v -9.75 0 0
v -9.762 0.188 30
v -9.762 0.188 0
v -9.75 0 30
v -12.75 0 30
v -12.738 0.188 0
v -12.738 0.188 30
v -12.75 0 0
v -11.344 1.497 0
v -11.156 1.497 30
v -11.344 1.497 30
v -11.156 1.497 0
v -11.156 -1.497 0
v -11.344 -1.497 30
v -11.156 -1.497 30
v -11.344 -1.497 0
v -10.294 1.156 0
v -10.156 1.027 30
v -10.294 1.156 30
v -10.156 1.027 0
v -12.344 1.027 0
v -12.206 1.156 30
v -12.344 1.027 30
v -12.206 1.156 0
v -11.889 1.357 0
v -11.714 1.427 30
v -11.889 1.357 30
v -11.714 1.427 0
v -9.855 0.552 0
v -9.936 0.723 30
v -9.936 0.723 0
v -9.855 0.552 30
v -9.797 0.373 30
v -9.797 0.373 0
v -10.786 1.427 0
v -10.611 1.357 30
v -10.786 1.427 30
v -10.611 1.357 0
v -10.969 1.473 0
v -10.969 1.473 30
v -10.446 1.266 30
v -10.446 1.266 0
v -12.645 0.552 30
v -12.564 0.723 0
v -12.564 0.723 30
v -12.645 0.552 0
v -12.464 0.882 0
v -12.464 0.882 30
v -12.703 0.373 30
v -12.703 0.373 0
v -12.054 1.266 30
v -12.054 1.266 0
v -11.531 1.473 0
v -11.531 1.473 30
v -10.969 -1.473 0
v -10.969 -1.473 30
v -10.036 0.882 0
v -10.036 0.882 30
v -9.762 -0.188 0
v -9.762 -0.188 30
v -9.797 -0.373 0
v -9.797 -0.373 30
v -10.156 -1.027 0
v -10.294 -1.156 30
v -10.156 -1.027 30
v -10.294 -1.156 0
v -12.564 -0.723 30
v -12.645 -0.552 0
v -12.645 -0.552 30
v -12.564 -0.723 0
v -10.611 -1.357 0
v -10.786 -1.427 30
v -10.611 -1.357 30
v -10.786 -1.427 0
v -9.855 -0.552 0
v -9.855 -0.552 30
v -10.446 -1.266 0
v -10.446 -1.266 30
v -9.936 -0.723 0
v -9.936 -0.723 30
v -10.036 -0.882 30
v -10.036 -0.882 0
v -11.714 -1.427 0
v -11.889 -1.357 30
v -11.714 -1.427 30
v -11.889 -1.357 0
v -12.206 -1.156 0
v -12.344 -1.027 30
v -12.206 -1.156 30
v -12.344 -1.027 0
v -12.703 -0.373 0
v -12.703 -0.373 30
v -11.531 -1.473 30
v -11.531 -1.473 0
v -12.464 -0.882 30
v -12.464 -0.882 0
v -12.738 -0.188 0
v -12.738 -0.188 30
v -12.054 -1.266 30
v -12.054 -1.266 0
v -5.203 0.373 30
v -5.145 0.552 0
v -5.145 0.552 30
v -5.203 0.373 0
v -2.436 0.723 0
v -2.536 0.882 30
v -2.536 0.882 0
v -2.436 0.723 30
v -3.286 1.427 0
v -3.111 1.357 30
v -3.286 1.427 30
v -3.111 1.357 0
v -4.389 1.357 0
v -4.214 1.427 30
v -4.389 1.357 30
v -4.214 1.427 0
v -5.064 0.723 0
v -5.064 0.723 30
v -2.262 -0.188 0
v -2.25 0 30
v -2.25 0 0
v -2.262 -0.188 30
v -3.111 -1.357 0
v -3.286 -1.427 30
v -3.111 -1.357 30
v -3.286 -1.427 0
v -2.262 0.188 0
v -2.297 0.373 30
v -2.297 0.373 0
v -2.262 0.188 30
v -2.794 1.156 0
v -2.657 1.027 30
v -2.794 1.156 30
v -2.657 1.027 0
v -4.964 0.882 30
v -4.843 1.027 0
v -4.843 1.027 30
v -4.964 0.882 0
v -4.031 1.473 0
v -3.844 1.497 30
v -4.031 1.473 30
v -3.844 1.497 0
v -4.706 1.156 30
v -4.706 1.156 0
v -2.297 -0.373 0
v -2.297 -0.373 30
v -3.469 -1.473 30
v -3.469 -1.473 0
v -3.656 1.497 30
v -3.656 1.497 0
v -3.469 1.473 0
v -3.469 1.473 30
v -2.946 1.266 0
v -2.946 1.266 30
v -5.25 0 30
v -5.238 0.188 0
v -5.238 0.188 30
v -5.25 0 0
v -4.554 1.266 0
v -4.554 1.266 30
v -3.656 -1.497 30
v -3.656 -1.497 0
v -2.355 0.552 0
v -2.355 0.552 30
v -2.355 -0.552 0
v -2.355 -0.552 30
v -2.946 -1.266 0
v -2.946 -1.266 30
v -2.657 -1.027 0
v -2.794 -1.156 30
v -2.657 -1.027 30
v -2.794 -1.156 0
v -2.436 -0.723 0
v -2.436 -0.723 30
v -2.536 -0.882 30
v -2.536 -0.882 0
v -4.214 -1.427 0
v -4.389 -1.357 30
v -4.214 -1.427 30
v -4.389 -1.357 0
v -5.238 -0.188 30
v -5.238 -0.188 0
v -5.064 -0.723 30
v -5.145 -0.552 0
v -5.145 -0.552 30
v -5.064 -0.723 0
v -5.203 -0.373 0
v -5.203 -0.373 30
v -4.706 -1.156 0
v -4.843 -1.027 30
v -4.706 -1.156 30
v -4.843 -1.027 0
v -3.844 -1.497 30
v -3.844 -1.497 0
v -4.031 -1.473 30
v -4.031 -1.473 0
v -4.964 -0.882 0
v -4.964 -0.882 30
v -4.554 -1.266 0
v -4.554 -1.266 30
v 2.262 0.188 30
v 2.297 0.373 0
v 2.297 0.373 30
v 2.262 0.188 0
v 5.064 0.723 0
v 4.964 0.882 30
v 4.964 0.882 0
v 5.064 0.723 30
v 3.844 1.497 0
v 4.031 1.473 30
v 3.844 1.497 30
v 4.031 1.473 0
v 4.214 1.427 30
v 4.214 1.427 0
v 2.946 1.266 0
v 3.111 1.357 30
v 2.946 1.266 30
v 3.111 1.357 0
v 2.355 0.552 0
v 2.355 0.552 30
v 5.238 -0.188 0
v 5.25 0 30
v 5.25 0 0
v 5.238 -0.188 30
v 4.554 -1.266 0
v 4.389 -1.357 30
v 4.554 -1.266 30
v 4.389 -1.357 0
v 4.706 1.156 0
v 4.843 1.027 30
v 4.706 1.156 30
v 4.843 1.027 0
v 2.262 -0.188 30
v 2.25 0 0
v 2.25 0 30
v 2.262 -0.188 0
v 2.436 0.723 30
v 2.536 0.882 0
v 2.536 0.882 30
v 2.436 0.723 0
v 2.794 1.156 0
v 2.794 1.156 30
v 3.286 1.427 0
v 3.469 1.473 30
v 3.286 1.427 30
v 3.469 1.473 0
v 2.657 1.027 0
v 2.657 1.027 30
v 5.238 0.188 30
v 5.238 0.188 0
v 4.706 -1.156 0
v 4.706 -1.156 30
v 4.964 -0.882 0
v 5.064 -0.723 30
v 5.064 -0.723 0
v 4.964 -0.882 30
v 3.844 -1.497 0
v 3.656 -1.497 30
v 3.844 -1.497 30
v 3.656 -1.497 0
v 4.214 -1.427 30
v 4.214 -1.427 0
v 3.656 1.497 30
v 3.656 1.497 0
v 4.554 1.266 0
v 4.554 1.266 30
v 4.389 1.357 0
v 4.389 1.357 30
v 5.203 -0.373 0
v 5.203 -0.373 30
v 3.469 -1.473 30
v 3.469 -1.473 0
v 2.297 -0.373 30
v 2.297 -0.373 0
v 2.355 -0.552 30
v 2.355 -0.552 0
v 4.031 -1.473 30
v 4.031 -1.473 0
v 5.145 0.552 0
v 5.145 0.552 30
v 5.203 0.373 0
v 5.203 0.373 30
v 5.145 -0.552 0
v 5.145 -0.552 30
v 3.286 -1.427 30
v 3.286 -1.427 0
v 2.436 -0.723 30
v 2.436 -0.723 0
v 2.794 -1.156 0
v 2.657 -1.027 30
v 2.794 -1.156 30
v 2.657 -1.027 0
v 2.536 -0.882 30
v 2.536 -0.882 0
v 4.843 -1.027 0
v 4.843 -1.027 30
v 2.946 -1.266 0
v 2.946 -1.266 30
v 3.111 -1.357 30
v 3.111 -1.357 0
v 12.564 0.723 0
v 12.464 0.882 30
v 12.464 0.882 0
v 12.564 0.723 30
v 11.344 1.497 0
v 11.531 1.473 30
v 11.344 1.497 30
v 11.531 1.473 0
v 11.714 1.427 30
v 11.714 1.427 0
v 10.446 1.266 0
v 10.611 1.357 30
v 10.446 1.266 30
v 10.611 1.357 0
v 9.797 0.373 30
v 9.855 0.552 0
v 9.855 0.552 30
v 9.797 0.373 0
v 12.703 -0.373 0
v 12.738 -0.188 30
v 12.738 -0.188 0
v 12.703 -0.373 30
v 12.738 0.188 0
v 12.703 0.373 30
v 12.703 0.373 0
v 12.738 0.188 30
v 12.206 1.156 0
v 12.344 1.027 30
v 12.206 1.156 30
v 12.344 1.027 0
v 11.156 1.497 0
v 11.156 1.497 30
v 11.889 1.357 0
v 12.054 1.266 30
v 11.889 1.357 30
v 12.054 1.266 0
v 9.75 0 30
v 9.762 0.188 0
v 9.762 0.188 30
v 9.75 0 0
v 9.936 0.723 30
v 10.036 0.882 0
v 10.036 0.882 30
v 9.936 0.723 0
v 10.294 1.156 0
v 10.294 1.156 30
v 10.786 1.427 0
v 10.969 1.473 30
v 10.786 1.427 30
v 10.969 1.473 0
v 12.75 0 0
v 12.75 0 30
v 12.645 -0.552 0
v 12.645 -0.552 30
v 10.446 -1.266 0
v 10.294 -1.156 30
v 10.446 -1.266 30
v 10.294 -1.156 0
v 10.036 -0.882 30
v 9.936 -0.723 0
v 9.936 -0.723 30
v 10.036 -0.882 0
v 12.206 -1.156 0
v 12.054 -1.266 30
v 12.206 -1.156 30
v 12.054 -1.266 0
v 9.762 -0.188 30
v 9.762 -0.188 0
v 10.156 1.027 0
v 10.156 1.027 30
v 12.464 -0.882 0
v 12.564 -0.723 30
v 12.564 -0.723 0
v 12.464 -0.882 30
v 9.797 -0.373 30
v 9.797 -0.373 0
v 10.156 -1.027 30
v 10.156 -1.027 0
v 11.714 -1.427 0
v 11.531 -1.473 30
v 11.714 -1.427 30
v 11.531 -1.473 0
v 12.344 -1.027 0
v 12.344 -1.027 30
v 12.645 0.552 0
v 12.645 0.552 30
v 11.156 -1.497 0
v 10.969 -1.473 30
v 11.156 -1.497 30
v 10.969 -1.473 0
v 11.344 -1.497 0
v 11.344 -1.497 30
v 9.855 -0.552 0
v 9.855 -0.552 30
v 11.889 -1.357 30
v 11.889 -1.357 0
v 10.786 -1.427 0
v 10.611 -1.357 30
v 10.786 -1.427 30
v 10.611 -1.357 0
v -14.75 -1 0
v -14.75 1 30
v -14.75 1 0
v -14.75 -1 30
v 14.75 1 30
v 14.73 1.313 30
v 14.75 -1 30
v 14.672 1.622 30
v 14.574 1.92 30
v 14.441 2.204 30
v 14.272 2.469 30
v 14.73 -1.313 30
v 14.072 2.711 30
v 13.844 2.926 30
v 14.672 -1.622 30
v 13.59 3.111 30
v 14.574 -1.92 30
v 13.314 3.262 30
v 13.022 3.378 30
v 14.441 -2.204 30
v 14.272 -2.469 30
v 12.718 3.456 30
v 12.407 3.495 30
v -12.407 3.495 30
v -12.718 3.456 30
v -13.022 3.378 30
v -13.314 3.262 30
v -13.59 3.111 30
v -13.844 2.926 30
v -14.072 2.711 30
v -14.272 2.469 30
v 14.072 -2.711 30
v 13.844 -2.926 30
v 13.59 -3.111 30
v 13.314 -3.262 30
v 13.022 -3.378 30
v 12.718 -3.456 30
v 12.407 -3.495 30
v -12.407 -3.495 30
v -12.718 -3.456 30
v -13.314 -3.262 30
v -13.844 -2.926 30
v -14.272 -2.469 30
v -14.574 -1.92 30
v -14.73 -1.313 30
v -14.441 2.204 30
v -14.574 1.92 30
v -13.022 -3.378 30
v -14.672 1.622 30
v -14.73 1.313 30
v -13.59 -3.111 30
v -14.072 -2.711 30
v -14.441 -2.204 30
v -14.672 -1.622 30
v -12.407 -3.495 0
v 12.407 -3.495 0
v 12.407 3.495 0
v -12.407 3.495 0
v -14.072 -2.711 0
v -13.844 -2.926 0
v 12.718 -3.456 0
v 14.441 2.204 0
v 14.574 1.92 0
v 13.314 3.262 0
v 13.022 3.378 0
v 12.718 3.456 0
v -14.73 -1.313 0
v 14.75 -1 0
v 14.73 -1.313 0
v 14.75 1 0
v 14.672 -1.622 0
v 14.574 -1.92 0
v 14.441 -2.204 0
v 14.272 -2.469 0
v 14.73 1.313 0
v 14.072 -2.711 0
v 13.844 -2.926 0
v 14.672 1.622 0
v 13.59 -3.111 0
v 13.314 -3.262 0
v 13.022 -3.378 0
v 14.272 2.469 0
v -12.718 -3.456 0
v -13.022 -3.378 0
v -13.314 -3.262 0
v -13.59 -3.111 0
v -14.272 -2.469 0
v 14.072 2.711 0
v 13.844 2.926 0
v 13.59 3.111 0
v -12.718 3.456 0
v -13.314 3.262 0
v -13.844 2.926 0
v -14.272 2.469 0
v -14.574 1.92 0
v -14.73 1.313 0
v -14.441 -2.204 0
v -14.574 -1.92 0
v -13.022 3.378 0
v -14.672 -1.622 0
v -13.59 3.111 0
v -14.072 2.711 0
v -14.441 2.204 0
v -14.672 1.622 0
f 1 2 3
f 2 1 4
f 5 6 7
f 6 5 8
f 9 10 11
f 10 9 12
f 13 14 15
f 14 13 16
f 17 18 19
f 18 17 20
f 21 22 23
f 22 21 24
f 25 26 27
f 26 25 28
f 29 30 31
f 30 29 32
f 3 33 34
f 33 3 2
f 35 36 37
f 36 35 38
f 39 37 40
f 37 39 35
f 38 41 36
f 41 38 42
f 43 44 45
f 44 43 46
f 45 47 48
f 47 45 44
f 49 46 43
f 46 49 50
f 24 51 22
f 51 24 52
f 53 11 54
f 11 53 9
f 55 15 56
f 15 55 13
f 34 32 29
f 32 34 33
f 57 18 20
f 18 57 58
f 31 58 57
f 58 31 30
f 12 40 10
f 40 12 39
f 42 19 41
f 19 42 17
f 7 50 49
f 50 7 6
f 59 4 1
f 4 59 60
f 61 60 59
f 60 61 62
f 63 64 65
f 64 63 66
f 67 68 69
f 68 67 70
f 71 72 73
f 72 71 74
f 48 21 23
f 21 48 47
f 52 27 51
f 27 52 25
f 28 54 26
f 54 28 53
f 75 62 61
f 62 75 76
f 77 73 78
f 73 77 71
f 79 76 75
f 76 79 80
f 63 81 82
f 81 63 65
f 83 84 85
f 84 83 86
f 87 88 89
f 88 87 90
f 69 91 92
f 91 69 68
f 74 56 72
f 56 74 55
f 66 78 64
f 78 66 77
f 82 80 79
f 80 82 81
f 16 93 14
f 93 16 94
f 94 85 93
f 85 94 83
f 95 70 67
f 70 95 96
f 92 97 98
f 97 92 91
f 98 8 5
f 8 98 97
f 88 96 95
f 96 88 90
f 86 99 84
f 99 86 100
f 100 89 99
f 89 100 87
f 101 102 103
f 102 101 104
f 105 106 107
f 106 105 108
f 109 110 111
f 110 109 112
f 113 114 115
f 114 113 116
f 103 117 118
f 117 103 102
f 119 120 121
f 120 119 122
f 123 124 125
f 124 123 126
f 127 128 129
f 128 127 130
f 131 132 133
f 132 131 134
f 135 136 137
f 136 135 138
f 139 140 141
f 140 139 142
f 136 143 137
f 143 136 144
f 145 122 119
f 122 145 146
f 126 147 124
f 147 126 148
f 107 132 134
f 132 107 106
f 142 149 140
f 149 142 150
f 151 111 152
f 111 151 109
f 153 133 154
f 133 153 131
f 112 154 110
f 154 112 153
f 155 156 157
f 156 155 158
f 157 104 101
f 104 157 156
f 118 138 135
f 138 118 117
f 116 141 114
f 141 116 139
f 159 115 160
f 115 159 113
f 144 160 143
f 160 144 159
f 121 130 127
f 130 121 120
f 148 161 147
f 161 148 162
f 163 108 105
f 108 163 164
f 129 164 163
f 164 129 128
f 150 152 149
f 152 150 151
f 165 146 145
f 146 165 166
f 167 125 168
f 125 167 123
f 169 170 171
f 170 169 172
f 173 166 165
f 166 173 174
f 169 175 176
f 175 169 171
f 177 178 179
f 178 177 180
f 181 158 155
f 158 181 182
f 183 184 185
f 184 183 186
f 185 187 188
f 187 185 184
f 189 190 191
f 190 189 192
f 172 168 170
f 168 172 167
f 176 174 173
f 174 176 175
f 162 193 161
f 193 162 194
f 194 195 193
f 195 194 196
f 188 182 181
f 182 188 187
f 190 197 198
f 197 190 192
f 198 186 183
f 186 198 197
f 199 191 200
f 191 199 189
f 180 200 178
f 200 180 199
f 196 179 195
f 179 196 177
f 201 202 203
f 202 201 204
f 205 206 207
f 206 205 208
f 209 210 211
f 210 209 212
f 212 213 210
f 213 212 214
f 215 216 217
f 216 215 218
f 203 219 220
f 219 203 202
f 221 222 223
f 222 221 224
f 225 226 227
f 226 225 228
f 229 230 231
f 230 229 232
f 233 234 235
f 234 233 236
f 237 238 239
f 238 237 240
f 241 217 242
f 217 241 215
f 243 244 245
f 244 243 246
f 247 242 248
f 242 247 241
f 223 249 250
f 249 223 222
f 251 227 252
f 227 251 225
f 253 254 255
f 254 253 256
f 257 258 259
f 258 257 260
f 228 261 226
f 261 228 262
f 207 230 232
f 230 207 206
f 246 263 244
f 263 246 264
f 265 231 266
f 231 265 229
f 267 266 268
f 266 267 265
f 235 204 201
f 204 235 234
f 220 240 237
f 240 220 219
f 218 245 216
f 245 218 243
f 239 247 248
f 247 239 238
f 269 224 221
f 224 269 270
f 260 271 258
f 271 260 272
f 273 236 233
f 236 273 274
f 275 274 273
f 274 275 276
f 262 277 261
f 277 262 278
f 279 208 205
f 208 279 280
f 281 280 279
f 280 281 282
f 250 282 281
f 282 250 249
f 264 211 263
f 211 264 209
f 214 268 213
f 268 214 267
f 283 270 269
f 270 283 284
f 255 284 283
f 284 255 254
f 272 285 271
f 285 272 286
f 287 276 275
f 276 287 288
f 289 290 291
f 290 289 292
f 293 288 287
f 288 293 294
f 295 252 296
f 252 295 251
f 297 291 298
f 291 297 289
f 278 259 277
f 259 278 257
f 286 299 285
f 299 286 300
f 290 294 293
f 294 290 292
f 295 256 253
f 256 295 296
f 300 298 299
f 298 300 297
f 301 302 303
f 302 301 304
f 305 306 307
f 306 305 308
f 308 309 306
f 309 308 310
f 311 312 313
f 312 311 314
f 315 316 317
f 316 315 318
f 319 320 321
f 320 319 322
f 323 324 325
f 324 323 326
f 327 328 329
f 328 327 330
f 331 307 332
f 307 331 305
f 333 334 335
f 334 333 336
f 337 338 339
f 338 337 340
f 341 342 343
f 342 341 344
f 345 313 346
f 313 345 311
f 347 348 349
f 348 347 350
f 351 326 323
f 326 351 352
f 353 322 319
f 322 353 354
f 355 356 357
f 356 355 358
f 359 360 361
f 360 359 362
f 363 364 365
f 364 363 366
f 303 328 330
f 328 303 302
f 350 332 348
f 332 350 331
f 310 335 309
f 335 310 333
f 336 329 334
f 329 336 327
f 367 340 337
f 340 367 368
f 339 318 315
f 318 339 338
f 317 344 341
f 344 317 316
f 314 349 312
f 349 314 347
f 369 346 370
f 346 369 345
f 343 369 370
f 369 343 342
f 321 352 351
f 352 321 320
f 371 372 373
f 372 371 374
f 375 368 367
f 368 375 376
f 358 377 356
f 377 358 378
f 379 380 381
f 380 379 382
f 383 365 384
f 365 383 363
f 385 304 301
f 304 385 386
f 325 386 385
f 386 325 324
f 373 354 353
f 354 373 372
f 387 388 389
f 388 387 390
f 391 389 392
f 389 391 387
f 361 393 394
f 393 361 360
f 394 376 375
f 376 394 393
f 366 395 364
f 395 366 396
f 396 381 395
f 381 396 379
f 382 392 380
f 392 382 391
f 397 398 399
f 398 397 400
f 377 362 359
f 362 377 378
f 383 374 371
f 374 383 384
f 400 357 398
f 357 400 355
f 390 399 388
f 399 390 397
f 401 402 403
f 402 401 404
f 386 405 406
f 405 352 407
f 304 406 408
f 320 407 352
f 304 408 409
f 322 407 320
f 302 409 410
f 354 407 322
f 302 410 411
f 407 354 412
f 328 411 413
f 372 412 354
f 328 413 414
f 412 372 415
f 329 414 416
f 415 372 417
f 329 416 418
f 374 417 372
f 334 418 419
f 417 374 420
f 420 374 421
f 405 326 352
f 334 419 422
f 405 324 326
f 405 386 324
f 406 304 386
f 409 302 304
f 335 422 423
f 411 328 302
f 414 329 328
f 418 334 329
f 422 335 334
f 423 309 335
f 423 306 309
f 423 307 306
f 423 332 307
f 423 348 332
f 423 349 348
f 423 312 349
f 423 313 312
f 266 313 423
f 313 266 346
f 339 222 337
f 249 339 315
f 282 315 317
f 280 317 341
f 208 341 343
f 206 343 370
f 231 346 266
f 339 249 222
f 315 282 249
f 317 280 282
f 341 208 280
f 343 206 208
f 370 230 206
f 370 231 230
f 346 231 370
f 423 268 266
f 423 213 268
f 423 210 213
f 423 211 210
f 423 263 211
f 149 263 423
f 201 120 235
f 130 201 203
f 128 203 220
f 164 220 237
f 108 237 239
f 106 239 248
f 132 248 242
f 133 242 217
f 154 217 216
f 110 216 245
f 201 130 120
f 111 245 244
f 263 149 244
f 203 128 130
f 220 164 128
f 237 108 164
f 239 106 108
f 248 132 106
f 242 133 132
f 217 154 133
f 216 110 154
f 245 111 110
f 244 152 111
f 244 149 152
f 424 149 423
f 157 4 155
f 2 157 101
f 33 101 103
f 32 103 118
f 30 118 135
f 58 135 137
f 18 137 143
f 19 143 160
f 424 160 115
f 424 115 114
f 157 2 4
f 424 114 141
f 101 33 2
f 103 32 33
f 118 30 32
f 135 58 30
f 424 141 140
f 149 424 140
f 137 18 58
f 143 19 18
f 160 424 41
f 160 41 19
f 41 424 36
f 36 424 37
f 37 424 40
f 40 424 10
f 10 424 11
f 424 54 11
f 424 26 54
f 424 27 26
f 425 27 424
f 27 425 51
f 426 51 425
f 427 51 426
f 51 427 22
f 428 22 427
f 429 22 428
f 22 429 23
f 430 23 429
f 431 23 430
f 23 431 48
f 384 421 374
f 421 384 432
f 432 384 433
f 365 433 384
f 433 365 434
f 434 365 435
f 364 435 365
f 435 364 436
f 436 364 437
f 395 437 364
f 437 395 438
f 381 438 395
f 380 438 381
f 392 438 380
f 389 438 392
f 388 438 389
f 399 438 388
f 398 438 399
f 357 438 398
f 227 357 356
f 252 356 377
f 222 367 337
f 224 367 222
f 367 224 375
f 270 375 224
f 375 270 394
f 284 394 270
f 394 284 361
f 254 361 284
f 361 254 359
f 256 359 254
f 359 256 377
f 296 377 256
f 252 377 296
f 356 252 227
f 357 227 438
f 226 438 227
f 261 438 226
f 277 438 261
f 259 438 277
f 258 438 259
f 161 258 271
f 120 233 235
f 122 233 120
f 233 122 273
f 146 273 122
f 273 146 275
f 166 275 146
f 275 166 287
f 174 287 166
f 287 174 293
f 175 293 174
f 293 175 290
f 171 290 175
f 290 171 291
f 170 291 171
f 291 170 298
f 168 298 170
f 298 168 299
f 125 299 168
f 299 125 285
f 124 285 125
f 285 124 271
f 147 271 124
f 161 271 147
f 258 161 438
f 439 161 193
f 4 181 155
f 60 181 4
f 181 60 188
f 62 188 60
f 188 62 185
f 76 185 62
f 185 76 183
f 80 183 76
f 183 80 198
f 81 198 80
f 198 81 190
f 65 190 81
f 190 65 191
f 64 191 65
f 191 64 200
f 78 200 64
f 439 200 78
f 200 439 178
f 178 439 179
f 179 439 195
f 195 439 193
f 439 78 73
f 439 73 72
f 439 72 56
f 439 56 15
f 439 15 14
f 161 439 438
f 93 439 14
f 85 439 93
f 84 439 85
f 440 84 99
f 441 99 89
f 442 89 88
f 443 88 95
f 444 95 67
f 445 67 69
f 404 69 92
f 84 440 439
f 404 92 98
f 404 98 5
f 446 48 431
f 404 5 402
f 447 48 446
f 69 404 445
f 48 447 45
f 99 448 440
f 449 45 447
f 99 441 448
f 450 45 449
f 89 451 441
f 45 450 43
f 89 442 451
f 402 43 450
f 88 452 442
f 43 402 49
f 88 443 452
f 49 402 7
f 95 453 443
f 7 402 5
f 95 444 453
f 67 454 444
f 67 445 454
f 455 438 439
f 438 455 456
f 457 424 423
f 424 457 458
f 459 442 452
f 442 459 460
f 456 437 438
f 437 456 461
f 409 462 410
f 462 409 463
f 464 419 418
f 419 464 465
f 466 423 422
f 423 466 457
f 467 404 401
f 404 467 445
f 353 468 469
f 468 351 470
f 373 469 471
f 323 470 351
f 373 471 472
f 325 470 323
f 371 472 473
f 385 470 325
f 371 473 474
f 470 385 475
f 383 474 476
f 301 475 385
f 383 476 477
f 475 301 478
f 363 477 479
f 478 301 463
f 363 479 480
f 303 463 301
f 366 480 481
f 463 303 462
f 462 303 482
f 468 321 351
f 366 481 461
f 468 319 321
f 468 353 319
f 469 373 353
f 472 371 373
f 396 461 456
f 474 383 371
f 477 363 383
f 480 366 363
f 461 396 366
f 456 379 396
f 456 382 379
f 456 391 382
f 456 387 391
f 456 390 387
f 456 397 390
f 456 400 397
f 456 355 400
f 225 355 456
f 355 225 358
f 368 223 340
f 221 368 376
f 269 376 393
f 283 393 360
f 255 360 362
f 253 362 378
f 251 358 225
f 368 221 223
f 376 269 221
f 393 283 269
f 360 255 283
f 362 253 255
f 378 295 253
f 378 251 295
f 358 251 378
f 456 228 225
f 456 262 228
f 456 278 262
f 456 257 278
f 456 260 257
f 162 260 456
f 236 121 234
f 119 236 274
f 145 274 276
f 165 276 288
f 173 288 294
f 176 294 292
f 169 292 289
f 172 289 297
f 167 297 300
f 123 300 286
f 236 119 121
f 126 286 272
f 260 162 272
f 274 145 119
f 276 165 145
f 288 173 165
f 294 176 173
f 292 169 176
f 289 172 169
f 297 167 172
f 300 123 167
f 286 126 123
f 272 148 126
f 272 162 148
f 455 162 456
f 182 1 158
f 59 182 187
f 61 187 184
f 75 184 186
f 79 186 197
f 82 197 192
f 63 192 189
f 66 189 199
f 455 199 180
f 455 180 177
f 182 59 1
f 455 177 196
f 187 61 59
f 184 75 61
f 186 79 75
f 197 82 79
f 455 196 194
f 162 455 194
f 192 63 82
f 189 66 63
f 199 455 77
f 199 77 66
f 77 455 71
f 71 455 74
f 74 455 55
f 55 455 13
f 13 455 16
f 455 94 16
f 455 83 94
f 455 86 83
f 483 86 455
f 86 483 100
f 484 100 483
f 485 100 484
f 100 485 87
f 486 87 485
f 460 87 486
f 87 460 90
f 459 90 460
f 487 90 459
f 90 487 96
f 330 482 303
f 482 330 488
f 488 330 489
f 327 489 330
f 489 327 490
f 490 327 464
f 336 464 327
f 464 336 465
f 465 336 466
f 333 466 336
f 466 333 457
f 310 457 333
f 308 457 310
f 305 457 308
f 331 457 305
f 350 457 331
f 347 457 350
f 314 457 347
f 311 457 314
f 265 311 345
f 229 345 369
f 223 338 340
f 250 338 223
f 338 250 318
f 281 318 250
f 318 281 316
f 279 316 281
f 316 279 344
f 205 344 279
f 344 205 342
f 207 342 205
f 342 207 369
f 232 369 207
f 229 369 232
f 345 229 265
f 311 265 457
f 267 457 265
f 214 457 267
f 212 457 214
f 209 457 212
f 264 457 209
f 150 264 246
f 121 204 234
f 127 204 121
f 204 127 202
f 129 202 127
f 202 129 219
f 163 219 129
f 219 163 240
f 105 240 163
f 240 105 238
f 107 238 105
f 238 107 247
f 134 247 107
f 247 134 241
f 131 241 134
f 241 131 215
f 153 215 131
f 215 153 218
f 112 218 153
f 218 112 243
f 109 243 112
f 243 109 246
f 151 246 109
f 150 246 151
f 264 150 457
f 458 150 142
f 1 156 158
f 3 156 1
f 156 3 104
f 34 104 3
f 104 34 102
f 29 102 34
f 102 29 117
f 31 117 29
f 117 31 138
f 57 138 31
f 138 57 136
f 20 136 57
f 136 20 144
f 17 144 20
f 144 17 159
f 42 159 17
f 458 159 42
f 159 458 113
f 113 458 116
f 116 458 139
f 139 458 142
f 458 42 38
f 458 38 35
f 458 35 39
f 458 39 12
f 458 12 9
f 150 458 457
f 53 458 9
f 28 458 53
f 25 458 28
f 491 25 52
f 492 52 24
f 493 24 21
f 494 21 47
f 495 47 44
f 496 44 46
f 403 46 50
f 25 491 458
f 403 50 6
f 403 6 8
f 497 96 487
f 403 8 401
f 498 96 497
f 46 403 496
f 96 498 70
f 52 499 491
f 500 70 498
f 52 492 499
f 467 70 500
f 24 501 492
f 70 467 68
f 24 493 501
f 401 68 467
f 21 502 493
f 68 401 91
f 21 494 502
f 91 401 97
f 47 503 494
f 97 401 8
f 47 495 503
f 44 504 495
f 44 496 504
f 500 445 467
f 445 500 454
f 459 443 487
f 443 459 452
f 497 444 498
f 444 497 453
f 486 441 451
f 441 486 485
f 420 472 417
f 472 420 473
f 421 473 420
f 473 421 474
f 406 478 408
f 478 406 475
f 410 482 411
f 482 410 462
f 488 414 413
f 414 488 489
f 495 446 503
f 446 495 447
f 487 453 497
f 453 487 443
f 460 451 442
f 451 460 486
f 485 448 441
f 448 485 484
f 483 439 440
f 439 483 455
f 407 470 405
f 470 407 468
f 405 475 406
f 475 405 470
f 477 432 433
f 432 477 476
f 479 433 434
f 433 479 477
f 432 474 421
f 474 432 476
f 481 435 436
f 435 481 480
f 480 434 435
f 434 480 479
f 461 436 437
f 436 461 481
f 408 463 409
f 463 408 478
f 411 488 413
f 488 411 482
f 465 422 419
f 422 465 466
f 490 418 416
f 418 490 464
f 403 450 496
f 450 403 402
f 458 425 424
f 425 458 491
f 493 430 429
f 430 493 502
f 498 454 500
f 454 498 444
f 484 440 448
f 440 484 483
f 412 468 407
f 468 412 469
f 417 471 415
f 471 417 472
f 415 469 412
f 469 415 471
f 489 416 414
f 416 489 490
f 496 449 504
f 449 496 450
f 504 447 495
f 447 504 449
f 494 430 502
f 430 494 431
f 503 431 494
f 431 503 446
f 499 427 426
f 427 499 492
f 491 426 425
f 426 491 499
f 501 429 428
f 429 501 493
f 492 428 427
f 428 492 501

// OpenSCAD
$fn = 50;


difference() {
	union() {
		translate(v = [0, 0, 0]) {
			rotate(a = [0, 0, 0]) {
				hull() {
					translate(v = [-12.2500000000, 1.0000000000, 0]) {
						rotate(a = [0, 0, 0]) {
							translate(v = [0, 0, 0]) {
								rotate(a = [0, 0, 0]) {
									cylinder(h = 30, r = 2.5000000000);
								}
							}
						}
					}
					translate(v = [12.2500000000, 1.0000000000, 0]) {
						rotate(a = [0, 0, 0]) {
							translate(v = [0, 0, 0]) {
								rotate(a = [0, 0, 0]) {
									cylinder(h = 30, r = 2.5000000000);
								}
							}
						}
					}
					translate(v = [-12.2500000000, -1.0000000000, 0]) {
						rotate(a = [0, 0, 0]) {
							translate(v = [0, 0, 0]) {
								rotate(a = [0, 0, 0]) {
									cylinder(h = 30, r = 2.5000000000);
								}
							}
						}
					}
					translate(v = [12.2500000000, -1.0000000000, 0]) {
						rotate(a = [0, 0, 0]) {
							translate(v = [0, 0, 0]) {
								rotate(a = [0, 0, 0]) {
									cylinder(h = 30, r = 2.5000000000);
								}
							}
						}
					}
				}
			}
		}
	}
	union() {
		translate(v = [-11.2500000000, 0.0000000000, 0]) {
			rotate(a = [0, 0, 0]) {
				translate(v = [0, 0, -50]) {
					rotate(a = [0, 0, 0]) {
						cylinder(h = 100, r = 1.5000000000);
					}
				}
			}
		}
		translate(v = [-3.7500000000, 0.0000000000, 0]) {
			rotate(a = [0, 0, 0]) {
				translate(v = [0, 0, -50]) {
					rotate(a = [0, 0, 0]) {
						cylinder(h = 100, r = 1.5000000000);
					}
				}
			}
		}
		translate(v = [3.7500000000, 0.0000000000, 0]) {
			rotate(a = [0, 0, 0]) {
				translate(v = [0, 0, -50]) {
					rotate(a = [0, 0, 0]) {
						cylinder(h = 100, r = 1.5000000000);
					}
				}
			}
		}
		translate(v = [11.2500000000, 0.0000000000, 0]) {
			rotate(a = [0, 0, 0]) {
				translate(v = [0, 0, -50]) {
					rotate(a = [0, 0, 0]) {
						cylinder(h = 100, r = 1.5000000000);
					}
				}
			}
		}
	}
}
